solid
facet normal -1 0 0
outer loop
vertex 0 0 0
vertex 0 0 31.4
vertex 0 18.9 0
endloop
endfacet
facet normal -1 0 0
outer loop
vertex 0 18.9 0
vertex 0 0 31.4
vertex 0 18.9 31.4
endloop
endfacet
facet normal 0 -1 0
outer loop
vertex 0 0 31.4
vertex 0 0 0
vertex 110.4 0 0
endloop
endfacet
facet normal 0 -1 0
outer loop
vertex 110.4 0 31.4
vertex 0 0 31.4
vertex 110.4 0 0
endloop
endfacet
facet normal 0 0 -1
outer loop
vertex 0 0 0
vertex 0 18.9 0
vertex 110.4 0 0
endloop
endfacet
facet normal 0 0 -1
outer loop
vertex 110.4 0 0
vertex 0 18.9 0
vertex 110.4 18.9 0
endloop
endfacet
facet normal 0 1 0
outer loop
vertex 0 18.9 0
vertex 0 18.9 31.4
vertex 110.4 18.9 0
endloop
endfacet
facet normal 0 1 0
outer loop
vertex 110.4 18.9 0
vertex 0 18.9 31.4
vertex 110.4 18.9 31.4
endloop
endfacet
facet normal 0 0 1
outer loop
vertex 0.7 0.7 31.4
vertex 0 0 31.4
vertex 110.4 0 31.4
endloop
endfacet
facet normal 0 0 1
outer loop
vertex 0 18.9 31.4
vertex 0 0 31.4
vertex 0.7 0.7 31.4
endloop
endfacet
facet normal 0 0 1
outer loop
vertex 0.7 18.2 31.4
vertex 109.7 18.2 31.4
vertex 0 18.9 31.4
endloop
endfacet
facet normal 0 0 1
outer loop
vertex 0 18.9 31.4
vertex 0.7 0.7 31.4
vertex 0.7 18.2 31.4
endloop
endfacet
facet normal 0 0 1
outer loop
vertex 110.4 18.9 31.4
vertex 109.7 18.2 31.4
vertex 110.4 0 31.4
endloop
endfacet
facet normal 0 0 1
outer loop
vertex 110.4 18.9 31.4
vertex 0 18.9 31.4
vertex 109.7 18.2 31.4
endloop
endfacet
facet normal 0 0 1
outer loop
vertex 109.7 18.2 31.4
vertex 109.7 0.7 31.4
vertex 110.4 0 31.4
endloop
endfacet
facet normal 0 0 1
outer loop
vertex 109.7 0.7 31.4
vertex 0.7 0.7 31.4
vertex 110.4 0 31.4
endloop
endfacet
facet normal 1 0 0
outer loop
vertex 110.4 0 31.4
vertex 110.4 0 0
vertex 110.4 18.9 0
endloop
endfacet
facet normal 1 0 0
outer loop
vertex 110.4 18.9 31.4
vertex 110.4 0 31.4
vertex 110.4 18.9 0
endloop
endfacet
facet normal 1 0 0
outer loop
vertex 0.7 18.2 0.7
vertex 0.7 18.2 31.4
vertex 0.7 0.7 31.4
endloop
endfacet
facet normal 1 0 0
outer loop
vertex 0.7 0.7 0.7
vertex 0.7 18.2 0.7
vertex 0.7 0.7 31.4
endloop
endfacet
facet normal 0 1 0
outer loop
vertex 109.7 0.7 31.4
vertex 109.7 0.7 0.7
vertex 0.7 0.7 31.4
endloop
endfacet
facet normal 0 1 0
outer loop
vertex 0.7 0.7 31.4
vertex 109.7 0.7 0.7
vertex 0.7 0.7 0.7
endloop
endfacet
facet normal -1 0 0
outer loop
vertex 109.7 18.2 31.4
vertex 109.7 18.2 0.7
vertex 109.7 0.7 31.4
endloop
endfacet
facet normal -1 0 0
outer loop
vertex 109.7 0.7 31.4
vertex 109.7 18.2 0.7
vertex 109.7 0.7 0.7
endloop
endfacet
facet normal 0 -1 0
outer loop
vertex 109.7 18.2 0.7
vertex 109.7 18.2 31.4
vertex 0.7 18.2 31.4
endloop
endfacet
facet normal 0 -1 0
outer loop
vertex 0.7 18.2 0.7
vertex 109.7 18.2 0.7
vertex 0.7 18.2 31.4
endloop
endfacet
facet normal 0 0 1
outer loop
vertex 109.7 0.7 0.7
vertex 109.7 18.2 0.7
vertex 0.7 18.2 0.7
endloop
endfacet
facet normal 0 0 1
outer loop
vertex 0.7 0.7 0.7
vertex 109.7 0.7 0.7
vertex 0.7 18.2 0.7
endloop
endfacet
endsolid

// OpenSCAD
h = 30;
b = 17.5;
l = 109;

d = 0.7;

ba = 7;
la = 10;

a1 = 4;
a2 = a1 + 33;
a3 = a2 + 54;
difference(){
	cube([l+2*d,b+2*d,h+2*d]);
	translate([d,d,d]) cube([l,b,h+2*d]);
	//translate([a1,d,-0.5*d]) cube([la,ba,2*d]);
	//translate([a2,d,-0.5*d]) cube([la,ba,2*d]);
	//translate([a3,d,-0.5*d]) cube([la,ba,2*d]);

}
